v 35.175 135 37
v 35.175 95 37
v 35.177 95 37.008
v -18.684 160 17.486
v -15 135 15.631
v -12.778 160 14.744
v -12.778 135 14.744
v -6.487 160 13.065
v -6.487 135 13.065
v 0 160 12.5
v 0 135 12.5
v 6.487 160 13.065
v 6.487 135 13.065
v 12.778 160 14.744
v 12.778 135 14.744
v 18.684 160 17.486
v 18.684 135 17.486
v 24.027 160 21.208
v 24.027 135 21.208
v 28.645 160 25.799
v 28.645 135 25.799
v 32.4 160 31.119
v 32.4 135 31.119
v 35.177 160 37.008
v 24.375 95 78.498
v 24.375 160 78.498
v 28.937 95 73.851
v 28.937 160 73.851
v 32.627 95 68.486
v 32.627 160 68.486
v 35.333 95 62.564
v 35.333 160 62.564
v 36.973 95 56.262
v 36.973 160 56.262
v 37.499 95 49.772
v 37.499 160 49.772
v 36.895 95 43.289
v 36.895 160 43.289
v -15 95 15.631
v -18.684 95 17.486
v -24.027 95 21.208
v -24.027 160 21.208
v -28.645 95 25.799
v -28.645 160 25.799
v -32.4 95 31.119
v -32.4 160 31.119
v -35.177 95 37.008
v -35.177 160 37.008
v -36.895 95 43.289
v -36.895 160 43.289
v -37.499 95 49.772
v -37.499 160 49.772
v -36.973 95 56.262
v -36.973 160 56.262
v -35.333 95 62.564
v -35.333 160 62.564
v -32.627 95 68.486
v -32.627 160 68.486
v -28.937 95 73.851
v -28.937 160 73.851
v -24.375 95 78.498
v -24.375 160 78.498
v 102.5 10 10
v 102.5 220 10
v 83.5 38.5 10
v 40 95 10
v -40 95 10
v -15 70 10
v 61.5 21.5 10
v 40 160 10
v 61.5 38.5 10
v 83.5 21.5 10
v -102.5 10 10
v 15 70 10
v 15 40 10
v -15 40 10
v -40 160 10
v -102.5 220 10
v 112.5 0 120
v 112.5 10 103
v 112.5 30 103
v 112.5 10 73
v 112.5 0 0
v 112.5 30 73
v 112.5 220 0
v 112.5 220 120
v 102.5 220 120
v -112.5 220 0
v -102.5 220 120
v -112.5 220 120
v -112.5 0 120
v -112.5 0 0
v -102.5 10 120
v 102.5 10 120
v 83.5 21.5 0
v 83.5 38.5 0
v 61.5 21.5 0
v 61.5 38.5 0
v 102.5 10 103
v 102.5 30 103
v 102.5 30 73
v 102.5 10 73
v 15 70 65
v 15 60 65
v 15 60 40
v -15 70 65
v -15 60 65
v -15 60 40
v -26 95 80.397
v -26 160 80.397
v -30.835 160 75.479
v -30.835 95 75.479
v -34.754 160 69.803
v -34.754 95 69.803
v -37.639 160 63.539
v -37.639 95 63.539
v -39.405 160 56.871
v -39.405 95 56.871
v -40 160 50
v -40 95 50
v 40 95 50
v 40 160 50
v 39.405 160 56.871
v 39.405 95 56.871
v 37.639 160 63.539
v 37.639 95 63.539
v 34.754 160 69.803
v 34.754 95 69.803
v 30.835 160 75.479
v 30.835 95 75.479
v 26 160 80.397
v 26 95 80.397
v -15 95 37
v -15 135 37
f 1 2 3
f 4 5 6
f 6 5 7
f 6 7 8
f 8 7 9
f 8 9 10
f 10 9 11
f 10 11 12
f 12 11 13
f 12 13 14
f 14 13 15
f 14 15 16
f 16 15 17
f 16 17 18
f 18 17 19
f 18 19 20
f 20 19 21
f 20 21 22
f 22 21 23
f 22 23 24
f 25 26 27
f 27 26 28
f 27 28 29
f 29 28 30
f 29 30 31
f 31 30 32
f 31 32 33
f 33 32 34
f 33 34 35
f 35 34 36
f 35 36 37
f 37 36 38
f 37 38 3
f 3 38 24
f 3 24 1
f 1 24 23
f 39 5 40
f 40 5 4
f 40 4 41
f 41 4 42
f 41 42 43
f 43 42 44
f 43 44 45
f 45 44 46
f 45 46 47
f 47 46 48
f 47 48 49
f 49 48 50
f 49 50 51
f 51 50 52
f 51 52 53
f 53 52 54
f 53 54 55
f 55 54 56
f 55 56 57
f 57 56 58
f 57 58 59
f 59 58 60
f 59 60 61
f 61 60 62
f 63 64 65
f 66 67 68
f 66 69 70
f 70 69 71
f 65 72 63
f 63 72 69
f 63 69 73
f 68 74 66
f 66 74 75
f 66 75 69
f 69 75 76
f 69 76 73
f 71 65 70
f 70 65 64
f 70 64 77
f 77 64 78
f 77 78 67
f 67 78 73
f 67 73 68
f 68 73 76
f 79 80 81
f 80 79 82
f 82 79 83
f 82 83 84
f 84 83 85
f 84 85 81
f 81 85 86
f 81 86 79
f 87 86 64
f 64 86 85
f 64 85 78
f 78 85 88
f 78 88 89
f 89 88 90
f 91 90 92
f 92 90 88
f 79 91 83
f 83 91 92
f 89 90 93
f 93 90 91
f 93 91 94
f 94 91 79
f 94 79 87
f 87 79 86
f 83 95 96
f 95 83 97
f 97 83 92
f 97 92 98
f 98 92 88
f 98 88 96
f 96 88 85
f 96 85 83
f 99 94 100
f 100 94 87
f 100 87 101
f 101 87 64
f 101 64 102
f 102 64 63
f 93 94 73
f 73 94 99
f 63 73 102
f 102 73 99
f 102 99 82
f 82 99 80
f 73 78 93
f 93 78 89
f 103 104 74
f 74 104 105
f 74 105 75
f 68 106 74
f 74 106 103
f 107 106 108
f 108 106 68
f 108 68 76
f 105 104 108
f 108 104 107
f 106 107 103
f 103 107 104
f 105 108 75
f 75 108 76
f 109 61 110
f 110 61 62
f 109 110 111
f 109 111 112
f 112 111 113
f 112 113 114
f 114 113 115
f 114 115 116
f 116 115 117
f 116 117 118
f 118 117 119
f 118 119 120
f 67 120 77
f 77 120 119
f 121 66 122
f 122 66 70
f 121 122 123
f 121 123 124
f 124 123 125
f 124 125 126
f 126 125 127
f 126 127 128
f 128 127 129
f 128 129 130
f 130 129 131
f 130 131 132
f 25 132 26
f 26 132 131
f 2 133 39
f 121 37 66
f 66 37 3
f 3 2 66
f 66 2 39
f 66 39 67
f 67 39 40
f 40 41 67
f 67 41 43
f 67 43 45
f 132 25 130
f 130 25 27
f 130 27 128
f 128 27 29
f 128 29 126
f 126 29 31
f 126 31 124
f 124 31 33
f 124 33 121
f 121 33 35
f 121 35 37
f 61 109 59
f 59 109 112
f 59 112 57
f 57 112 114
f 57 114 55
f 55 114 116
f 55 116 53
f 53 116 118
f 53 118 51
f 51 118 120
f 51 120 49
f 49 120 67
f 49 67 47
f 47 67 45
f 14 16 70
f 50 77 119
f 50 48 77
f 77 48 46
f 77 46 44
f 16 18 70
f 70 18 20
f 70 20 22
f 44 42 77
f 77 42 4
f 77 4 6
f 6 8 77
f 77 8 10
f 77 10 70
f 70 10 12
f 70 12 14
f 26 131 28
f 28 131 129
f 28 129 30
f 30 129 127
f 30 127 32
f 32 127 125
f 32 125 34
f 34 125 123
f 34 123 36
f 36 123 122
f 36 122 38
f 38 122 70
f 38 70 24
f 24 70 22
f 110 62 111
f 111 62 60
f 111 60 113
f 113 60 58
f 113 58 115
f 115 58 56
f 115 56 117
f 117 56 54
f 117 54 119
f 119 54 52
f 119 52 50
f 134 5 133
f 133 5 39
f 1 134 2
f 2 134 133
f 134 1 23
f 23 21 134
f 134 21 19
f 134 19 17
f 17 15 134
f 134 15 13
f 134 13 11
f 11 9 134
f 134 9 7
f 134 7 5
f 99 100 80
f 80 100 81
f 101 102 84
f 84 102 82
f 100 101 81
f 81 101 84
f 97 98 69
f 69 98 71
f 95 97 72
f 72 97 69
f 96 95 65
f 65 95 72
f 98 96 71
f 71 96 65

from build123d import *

# Parameters (mm, degrees)
CROQUIS1_W                  = 225
CROQUIS1_H                  = 220
SALIENTE_EXTRUIR1_DEPTH     = 120
CROQUIS2_W                  = 205
CROQUIS2_H                  = 210
CORTAR_EXTRUIR1_DEPTH       = 110
CROQUIS3_W                  = 30
CROQUIS3_H                  = 10
SALIENTE_EXTRUIR2_DEPTH     = 55
NERVIO4_REACH               = 276.693
CROQUIS6_WALL_W             = 587.44153369
CROQUIS6_WALL_H             = 30
SALIENTE_EXTRUIR3_DEPTH     = 65
SALIENTE_EXTRUIR4_START     = -15
SALIENTE_EXTRUIR4_OUTLINE_W = 40
SALIENTE_EXTRUIR4_OUTLINE_H = 27
SALIENTE_EXTRUIR4_DEPTH     = 52.5
CORTAR_EXTRUIR2_REACH       = 332.189
CROQUIS10_W                 = 30
CROQUIS10_H                 = 20
CORTAR_EXTRUIR3_REACH       = 276.693
CROQUIS11_W                 = 22
CROQUIS11_H                 = 17


with BuildPart() as part:
    # Croquis1 → Saliente-Extruir1 (new body)
    with BuildSketch(Plane.XY):
        with Locations((0, 110)):
            Rectangle(CROQUIS1_W, CROQUIS1_H)
    extrude(amount=SALIENTE_EXTRUIR1_DEPTH)

    # Croquis2 → Cortar-Extruir1 (cut)
    with BuildSketch(Plane.XY.offset(120)):
        with Locations((0, 115)):
            Rectangle(CROQUIS2_W, CROQUIS2_H)
    extrude(amount=-CORTAR_EXTRUIR1_DEPTH, mode=Mode.SUBTRACT)

    # Croquis3 → Saliente-Extruir2 (add)
    with BuildSketch(Plane.XY.offset(10)):
        with Locations((0, 65)):
            Rectangle(CROQUIS3_W, CROQUIS3_H)
    extrude(amount=SALIENTE_EXTRUIR2_DEPTH)

    # Croquis6 wall → Nervio4 (add, up to next)
    with BuildSketch(Plane(origin=(0, 50, 25), x_dir=(0, -0.554700196225, -0.832050294338), z_dir=(0, 0.832050294338, -0.554700196225)), mode=Mode.PRIVATE) as nervio4_sk1:
        Rectangle(CROQUIS6_WALL_W, CROQUIS6_WALL_H)
    nervio4_tool1 = extrude(nervio4_sk1.sketch, amount=NERVIO4_REACH, mode=Mode.PRIVATE) - part.part
    add(nervio4_tool1.solids().sort_by_distance((0, 50, 25))[0])



with BuildPart() as body_2:
    # Croquis7 → Saliente-Extruir3 (new body)
    with BuildSketch(Plane(origin=(0, 160, 0), x_dir=(1, 0, 0), z_dir=(0, 1, 0))):
        with BuildLine():
            Line((-40, -50), (-40, -10))
            Line((-40, -10), (0, -10))
            Line((0, -10), (40, -10))
            Line((40, -10), (40, -50))
            ThreePointArc((40, -50), (36.331804249, -66.733200531), (26, -80.397368307))
            Line((26, -80.397368307), (24.375, -78.497532788))
            ThreePointArc((24.375, -78.497532788), (0, -12.5), (-24.375, -78.497532788))
            Line((-24.375, -78.497532788), (-26, -80.397368307))
            ThreePointArc((-26, -80.397368307), (-36.331804249, -66.733200531), (-40, -50))
        make_face()
    extrude(amount=-SALIENTE_EXTRUIR3_DEPTH)


with BuildPart() as part_1:
    add(part.part)

    add(body_2.part)  # Saliente-Extruir4 merges body 2
    # Saliente-Extruir4: read off the stored shape, not the designer's step
    # Saliente-Extruir4 outline → Saliente-Extruir4 (add)
    with BuildSketch(Plane.YZ.offset(SALIENTE_EXTRUIR4_START)):
        with Locations((115, 23.5)):
            Rectangle(SALIENTE_EXTRUIR4_OUTLINE_W, SALIENTE_EXTRUIR4_OUTLINE_H)
    extrude(amount=SALIENTE_EXTRUIR4_DEPTH)

    # Croquis10 → Cortar-Extruir2 (cut, up to next)
    with BuildSketch(Plane.ZY.offset(-102.5), mode=Mode.PRIVATE) as cortar_extruir2_sk1:
        with Locations((88, 20)):
            Rectangle(CROQUIS10_W, CROQUIS10_H)
    cortar_extruir2_tool1 = extrude(cortar_extruir2_sk1.sketch, amount=-CORTAR_EXTRUIR2_REACH, mode=Mode.PRIVATE) & part_1.part
    add(cortar_extruir2_tool1.solids().sort_by_distance((102.5, 20, 88))[0], mode=Mode.SUBTRACT)

    # Croquis11 → Cortar-Extruir3 (cut, up to next)
    with BuildSketch(Plane(origin=(0, 0, 0), x_dir=(-1, 0, 0), z_dir=(0, 0, -1)), mode=Mode.PRIVATE) as cortar_extruir3_sk1:
        with Locations((-72.5, 30)):
            Rectangle(CROQUIS11_W, CROQUIS11_H)
    cortar_extruir3_tool1 = extrude(cortar_extruir3_sk1.sketch, amount=-CORTAR_EXTRUIR3_REACH, mode=Mode.PRIVATE) & part_1.part
    add(cortar_extruir3_tool1.solids().sort_by_distance((72.5, 30, 0))[0], mode=Mode.SUBTRACT)


solid = part_1.part
